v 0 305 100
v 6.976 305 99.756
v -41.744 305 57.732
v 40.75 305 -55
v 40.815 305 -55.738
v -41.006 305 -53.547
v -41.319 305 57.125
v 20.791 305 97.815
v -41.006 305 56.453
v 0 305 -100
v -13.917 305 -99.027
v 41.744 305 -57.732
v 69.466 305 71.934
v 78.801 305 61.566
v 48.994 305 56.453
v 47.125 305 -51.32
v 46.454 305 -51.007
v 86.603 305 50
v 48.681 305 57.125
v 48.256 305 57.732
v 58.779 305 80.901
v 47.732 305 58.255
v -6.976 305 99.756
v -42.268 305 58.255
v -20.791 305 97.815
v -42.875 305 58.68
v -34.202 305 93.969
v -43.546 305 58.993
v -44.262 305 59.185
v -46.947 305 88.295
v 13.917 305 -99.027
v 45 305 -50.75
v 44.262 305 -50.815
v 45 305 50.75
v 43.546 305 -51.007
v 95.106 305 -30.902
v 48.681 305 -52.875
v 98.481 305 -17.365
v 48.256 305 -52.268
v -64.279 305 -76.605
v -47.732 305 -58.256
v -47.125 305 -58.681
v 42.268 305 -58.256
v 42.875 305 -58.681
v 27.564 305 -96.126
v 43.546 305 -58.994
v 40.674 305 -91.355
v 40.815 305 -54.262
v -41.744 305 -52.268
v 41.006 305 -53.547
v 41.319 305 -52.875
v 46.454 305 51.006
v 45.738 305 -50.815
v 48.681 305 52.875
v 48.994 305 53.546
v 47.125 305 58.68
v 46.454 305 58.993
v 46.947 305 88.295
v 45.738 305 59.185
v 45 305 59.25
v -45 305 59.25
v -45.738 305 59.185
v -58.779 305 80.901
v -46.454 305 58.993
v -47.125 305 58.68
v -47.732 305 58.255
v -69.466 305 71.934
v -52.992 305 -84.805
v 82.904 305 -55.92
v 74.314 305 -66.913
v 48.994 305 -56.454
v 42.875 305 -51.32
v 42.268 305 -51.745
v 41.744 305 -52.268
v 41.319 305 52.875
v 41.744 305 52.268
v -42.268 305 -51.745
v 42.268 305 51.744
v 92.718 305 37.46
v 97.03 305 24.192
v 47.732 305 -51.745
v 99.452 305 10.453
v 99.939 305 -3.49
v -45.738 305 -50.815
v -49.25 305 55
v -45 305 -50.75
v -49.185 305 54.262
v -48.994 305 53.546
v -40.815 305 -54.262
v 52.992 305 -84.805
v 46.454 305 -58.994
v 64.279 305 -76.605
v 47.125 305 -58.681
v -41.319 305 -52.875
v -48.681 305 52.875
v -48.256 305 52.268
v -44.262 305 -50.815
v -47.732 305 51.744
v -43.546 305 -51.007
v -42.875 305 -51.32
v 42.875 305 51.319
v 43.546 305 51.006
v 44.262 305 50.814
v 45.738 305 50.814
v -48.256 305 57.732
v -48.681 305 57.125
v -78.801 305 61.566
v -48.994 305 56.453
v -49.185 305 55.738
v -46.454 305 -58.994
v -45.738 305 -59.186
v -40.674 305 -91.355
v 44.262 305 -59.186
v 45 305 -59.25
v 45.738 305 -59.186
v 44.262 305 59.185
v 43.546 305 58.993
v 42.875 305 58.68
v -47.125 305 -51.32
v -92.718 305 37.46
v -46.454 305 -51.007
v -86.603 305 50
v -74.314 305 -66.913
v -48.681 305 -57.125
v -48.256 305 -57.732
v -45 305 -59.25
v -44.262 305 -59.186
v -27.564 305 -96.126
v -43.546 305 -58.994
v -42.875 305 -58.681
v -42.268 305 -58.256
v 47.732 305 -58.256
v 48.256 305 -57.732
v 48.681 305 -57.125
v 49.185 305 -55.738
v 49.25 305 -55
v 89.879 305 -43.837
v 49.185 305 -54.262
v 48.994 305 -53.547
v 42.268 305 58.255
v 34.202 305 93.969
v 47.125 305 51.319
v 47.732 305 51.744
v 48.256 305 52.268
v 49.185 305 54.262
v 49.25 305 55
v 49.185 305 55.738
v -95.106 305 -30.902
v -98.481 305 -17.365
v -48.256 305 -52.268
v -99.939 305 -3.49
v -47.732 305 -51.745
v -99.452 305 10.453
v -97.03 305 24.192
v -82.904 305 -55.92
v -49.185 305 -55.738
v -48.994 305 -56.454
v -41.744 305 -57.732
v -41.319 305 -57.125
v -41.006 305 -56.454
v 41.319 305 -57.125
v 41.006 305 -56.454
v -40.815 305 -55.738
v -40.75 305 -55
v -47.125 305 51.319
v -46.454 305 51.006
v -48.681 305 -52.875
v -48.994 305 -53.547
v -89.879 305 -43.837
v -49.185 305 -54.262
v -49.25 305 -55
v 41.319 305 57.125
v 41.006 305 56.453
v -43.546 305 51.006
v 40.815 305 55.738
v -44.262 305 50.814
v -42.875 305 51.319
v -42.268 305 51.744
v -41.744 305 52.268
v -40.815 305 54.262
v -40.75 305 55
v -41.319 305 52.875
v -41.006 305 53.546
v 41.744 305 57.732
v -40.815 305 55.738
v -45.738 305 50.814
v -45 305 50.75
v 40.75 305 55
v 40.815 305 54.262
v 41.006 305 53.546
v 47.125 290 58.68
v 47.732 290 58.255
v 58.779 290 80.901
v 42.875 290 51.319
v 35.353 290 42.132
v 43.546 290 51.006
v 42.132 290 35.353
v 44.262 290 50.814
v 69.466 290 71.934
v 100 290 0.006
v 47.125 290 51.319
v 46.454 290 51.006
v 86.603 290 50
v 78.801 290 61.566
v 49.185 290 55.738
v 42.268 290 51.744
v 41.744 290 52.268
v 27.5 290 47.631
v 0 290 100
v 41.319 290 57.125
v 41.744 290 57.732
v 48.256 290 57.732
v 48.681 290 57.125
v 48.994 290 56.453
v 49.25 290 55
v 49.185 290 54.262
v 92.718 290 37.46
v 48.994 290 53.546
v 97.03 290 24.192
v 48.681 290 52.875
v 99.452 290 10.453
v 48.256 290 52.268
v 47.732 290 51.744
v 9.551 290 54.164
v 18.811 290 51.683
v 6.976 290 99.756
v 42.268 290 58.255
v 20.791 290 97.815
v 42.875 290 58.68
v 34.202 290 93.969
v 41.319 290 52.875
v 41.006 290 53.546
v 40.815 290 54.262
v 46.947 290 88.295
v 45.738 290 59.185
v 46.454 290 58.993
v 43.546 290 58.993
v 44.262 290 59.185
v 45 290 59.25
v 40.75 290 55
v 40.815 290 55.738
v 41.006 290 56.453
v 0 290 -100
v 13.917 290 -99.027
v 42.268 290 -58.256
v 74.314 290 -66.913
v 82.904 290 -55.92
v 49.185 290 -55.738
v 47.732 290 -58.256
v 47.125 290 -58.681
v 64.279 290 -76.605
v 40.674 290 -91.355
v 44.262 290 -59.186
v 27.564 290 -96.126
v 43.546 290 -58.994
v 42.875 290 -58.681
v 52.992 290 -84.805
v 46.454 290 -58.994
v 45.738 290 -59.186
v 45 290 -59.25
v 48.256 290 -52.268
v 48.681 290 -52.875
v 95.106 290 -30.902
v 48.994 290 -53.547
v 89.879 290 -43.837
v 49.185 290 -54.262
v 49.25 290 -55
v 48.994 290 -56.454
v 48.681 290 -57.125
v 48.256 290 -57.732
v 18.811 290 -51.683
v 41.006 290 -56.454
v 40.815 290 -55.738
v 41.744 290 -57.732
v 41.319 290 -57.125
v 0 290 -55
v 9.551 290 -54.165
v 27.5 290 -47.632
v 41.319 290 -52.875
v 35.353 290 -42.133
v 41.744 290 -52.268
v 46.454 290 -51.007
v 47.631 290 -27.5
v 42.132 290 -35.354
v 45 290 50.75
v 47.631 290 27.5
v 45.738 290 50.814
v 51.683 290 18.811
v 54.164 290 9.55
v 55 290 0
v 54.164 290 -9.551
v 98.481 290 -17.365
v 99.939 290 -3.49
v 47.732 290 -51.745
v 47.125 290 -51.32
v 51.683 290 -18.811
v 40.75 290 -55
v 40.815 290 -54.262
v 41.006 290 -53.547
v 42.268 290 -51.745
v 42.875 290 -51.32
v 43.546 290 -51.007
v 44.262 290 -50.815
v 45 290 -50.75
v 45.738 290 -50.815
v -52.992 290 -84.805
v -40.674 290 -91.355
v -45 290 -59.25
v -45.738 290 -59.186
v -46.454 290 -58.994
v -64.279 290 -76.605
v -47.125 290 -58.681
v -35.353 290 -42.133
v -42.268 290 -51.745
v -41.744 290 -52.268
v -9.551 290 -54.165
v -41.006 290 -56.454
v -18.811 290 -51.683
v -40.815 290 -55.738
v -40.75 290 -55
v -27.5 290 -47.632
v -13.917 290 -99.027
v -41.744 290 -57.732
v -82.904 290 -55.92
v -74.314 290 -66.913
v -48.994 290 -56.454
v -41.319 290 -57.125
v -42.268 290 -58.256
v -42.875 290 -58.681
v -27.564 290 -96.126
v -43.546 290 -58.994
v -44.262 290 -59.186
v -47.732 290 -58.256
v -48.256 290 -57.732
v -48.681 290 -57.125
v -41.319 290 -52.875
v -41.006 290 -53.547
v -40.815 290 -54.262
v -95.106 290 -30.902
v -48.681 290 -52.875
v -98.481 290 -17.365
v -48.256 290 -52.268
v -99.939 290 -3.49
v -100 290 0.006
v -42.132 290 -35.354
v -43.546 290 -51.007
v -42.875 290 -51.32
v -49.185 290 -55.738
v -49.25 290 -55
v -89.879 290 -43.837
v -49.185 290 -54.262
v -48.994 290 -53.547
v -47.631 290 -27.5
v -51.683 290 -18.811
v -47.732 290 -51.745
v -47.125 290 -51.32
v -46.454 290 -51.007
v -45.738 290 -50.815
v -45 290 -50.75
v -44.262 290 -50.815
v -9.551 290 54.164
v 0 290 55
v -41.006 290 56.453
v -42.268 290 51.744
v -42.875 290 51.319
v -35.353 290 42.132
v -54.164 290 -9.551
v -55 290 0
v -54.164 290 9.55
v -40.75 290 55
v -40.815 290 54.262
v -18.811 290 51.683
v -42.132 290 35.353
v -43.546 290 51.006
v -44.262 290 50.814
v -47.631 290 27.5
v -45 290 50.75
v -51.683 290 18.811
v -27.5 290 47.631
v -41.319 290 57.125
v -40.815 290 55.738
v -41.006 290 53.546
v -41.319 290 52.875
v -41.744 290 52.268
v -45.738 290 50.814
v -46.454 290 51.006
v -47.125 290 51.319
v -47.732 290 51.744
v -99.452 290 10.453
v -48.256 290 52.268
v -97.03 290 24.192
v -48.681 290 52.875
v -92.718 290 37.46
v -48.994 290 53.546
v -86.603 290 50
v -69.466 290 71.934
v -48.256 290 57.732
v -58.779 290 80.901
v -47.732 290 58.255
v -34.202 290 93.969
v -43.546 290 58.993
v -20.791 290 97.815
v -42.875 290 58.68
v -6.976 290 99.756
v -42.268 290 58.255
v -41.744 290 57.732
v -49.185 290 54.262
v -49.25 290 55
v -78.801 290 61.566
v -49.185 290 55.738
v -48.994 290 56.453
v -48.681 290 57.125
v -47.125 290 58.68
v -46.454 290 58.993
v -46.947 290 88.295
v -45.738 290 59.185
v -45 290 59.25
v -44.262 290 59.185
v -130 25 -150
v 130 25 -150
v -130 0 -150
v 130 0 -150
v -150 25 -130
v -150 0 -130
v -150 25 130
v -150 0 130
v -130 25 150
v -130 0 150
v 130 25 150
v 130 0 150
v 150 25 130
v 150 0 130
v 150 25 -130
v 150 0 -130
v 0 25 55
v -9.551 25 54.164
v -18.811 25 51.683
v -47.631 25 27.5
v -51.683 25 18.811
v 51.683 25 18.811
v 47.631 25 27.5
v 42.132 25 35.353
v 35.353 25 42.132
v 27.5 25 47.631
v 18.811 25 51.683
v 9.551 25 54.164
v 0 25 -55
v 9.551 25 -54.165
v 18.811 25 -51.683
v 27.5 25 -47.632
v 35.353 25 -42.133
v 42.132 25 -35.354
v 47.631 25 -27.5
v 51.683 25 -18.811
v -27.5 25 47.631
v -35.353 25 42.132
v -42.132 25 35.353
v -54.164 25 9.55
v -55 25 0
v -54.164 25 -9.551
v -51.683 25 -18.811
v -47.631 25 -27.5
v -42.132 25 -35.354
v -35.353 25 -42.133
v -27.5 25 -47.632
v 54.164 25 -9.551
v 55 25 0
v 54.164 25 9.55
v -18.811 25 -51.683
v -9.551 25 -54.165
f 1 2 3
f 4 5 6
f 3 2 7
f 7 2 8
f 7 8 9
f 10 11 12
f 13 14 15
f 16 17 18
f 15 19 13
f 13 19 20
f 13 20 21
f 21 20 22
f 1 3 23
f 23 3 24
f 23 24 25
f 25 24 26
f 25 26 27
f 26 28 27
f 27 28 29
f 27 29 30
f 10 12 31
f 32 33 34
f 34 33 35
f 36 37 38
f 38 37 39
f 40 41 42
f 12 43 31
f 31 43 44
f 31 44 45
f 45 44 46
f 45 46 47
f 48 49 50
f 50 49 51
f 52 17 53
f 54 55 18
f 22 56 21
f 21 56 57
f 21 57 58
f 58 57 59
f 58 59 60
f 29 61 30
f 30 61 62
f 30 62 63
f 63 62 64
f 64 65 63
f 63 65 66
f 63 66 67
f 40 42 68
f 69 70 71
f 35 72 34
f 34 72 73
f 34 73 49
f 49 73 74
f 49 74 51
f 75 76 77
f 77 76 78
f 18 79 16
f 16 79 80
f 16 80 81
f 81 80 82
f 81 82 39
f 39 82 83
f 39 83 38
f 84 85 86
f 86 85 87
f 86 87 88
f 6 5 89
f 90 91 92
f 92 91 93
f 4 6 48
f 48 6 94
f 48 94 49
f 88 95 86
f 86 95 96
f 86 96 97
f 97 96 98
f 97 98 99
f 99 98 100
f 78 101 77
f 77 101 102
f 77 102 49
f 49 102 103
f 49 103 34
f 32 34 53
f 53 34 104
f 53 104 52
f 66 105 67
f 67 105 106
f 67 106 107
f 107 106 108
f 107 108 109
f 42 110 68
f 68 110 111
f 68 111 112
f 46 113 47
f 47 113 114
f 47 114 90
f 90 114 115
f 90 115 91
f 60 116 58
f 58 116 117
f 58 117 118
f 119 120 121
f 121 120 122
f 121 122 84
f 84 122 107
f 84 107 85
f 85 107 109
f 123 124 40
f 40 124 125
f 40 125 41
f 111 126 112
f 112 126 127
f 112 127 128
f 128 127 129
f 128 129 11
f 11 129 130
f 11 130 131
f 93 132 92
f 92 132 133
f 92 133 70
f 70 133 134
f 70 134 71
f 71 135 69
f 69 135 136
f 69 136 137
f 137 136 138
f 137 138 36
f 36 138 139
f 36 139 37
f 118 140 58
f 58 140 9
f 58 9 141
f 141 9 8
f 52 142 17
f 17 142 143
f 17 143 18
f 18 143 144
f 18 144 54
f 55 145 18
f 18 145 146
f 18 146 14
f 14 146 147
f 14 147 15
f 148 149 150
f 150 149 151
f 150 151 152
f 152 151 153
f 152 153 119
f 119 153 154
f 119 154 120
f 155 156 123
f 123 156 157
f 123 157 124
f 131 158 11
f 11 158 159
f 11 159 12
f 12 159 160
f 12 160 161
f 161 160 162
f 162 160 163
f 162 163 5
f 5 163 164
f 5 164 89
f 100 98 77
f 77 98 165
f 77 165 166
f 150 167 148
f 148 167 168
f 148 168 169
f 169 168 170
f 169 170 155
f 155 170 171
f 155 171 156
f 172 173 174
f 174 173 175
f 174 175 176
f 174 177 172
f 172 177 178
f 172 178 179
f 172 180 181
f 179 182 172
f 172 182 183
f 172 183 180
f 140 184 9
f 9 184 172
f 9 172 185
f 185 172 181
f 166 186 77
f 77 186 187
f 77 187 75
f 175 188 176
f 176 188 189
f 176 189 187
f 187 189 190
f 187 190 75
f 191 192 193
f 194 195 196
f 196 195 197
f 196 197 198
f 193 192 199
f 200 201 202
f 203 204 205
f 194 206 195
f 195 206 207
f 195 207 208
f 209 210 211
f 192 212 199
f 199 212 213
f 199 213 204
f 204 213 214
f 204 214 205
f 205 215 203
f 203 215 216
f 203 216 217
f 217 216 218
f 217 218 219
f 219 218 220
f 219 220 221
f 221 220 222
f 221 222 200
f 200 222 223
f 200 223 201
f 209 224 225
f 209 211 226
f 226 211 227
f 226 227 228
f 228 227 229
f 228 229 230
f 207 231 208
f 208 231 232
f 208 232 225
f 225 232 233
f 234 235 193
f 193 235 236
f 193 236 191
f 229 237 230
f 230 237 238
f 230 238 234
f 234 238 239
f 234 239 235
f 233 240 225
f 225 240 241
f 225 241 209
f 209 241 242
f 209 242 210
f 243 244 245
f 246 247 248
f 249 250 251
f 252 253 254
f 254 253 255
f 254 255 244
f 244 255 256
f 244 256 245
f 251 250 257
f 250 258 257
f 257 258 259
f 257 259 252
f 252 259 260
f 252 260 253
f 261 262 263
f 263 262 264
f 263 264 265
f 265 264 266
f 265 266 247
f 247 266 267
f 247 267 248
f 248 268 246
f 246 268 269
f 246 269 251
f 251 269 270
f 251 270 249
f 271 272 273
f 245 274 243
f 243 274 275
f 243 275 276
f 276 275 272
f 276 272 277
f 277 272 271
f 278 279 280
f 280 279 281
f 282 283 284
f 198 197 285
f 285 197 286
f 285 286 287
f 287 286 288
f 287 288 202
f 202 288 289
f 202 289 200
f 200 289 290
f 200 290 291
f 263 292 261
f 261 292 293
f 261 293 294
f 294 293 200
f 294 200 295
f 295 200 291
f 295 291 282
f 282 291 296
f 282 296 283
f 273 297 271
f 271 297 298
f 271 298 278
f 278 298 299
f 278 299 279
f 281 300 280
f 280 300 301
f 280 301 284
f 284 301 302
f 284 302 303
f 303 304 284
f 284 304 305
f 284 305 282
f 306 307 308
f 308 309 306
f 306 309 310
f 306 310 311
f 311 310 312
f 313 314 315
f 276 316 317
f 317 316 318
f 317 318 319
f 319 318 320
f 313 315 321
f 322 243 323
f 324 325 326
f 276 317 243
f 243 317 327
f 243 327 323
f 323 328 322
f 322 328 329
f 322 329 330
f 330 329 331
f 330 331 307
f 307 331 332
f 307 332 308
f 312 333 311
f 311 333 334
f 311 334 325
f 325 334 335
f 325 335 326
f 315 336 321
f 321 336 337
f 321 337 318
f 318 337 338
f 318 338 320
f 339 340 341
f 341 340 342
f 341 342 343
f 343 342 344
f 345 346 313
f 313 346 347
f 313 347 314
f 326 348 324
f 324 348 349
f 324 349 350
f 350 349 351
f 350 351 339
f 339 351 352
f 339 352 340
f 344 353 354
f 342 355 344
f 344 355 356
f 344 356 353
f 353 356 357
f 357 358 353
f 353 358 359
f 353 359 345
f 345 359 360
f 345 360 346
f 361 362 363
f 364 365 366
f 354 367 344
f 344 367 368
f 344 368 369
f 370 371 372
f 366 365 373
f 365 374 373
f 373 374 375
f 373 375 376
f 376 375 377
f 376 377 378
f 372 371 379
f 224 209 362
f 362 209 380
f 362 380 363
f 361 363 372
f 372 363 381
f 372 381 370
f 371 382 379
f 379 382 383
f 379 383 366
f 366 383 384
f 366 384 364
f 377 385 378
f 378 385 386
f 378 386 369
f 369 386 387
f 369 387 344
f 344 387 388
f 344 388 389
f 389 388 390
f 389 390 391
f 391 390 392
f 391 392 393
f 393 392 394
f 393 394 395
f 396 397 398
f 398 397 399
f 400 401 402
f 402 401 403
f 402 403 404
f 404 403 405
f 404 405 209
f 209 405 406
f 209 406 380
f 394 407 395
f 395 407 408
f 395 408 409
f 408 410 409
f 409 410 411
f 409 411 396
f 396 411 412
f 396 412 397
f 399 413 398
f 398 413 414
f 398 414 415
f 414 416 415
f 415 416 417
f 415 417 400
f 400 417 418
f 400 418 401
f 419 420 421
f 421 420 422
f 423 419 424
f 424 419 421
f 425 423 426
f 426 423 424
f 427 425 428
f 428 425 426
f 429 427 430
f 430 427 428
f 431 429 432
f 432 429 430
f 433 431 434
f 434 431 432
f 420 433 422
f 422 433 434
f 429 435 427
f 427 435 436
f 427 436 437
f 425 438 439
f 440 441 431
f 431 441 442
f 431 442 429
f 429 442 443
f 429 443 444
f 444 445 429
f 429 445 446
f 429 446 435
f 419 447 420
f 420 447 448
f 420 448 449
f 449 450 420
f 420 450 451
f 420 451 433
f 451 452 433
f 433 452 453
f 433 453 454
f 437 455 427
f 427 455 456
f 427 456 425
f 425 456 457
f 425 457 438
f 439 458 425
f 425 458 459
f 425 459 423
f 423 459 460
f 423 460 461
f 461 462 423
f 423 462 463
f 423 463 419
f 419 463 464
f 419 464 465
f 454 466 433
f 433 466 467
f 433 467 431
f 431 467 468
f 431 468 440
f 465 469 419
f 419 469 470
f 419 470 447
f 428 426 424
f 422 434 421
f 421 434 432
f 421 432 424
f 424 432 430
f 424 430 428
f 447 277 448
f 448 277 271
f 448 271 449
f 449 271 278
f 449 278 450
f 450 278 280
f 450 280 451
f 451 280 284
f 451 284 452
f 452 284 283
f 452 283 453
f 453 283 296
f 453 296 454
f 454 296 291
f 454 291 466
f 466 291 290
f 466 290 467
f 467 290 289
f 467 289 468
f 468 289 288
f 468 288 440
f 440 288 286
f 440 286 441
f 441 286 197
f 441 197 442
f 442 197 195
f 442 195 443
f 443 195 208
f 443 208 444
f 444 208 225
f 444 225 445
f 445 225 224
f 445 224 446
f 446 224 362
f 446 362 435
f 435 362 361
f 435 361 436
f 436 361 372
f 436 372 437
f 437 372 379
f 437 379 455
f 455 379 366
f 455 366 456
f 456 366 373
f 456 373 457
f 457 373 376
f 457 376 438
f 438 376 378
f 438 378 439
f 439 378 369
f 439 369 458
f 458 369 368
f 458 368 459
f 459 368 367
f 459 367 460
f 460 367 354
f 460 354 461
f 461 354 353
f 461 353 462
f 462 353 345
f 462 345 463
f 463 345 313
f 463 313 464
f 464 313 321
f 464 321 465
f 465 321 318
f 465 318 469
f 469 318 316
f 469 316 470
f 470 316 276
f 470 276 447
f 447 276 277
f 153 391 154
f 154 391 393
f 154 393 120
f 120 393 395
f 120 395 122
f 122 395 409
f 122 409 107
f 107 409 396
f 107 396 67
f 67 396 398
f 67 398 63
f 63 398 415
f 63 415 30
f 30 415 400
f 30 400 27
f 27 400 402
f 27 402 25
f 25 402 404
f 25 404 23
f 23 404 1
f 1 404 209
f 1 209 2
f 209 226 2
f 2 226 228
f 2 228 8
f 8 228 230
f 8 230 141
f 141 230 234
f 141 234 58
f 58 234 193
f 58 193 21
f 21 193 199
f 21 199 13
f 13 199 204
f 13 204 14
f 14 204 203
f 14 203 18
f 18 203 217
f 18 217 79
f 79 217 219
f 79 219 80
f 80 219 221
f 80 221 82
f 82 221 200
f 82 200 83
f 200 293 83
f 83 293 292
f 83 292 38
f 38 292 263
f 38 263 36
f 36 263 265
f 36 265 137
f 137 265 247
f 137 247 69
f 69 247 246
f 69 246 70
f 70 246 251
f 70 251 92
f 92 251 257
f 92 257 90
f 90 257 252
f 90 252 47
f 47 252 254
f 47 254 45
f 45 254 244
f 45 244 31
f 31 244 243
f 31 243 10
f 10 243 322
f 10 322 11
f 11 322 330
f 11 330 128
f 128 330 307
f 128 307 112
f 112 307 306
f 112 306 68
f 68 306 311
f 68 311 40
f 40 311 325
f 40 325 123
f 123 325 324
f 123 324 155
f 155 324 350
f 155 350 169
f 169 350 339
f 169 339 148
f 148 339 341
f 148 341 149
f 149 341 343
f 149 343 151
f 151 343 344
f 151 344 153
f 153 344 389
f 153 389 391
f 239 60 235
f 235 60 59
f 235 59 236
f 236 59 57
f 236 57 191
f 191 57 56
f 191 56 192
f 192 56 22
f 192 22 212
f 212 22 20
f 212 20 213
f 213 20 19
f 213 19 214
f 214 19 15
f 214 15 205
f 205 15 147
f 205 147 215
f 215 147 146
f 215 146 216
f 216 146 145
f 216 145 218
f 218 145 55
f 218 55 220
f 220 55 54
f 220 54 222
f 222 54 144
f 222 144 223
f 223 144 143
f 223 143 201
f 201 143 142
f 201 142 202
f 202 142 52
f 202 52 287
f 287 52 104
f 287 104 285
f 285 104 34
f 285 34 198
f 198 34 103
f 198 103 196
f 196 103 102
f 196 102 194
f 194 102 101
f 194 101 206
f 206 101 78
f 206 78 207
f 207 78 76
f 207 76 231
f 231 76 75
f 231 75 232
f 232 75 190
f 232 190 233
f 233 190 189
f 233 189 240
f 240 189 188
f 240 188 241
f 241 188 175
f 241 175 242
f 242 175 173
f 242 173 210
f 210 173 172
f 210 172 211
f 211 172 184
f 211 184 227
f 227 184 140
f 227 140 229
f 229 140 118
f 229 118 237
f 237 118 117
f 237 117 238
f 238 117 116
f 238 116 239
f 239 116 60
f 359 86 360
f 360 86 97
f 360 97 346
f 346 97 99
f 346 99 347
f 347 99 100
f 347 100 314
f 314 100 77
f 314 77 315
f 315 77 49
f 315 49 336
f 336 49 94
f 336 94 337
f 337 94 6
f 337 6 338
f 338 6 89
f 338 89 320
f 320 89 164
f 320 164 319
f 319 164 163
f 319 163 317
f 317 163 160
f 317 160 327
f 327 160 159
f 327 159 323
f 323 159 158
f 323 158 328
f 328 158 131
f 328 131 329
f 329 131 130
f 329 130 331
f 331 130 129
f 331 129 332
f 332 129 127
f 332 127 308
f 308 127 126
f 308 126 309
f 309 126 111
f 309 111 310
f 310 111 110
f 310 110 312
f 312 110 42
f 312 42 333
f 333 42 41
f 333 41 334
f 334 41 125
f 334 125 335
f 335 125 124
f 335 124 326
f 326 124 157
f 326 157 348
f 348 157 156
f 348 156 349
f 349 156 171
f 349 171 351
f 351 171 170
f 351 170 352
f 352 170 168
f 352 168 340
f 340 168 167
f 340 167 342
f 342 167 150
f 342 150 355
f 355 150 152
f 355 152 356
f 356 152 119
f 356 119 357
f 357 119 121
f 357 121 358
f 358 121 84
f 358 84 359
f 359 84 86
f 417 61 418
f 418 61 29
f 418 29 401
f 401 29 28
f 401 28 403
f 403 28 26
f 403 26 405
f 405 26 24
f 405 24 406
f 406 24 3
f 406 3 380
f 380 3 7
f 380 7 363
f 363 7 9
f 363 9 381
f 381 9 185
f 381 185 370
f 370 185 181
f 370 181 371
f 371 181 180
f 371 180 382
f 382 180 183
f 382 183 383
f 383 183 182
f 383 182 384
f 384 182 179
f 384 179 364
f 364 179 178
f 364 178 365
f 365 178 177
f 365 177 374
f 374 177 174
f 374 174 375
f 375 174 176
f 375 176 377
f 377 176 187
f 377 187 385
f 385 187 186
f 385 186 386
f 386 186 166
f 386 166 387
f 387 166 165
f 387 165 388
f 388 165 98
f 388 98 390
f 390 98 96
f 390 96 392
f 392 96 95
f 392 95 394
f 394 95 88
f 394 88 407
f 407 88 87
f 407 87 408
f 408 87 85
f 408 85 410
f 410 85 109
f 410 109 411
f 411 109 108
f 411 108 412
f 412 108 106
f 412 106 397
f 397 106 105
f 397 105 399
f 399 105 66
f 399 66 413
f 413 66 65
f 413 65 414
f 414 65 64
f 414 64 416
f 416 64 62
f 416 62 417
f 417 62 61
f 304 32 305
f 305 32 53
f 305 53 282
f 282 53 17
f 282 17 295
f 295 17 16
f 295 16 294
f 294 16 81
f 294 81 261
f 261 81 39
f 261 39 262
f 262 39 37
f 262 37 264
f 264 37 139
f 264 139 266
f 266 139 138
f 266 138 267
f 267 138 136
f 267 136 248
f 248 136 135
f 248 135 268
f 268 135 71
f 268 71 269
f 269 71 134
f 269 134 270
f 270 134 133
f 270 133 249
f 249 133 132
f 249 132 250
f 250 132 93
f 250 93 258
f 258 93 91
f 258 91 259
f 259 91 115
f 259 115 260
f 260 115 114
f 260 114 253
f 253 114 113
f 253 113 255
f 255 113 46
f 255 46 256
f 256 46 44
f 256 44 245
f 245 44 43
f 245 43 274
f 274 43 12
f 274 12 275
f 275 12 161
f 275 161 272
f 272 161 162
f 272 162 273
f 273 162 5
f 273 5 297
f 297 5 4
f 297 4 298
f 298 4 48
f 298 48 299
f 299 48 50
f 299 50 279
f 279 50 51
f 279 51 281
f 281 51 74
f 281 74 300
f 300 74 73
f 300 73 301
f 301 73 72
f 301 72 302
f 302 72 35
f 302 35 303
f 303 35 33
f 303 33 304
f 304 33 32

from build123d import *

# Parameters (mm, degrees)
BOSS_EXTRUDE1_DEPTH = 25
SKETCH2_R           = 55
BOSS_EXTRUDE2_DEPTH = 265
SKETCH3_R           = 100
BOSS_EXTRUDE3_DEPTH = 15
SKETCH4_R           = 4.25
CUT_EXTRUDE1_DEPTH  = 15


with BuildPart() as part:
    # Sketch1 → Boss-Extrude1 (new body)
    with BuildSketch(Plane(origin=(0, 0, 0), x_dir=(1, 0, 0), z_dir=(0, 1, 0))):
        Polygon((-150, 130), (-130, 150), (130, 150), (150, 130), (150, -130), (130, -150), (-130, -150), (-150, -130), align=None)
    extrude(amount=BOSS_EXTRUDE1_DEPTH)

    # Sketch2 → Boss-Extrude2 (add)
    with BuildSketch(Plane(origin=(0, 25, 0), x_dir=(1, 0, 0), z_dir=(0, 1, 0))):
        Circle(SKETCH2_R)
    extrude(amount=BOSS_EXTRUDE2_DEPTH)

    # Sketch3 → Boss-Extrude3 (add)
    with BuildSketch(Plane(origin=(0, 290, 0), x_dir=(1, 0, 0), z_dir=(0, 1, 0))):
        Circle(SKETCH3_R)
    extrude(amount=BOSS_EXTRUDE3_DEPTH)

    # Sketch4 → Cut-Extrude1 (cut)
    with BuildSketch(Plane(origin=(0, 305, 0), x_dir=(1, 0, 0), z_dir=(0, 1, 0))):
        with Locations((-45, 55)):
            Circle(SKETCH4_R)
        with Locations((45, 55)):
            Circle(SKETCH4_R)
        with Locations((45, -55)):
            Circle(SKETCH4_R)
        with Locations((-45, -55)):
            Circle(SKETCH4_R)
    extrude(amount=-CUT_EXTRUDE1_DEPTH, mode=Mode.SUBTRACT)


solid = part.part
